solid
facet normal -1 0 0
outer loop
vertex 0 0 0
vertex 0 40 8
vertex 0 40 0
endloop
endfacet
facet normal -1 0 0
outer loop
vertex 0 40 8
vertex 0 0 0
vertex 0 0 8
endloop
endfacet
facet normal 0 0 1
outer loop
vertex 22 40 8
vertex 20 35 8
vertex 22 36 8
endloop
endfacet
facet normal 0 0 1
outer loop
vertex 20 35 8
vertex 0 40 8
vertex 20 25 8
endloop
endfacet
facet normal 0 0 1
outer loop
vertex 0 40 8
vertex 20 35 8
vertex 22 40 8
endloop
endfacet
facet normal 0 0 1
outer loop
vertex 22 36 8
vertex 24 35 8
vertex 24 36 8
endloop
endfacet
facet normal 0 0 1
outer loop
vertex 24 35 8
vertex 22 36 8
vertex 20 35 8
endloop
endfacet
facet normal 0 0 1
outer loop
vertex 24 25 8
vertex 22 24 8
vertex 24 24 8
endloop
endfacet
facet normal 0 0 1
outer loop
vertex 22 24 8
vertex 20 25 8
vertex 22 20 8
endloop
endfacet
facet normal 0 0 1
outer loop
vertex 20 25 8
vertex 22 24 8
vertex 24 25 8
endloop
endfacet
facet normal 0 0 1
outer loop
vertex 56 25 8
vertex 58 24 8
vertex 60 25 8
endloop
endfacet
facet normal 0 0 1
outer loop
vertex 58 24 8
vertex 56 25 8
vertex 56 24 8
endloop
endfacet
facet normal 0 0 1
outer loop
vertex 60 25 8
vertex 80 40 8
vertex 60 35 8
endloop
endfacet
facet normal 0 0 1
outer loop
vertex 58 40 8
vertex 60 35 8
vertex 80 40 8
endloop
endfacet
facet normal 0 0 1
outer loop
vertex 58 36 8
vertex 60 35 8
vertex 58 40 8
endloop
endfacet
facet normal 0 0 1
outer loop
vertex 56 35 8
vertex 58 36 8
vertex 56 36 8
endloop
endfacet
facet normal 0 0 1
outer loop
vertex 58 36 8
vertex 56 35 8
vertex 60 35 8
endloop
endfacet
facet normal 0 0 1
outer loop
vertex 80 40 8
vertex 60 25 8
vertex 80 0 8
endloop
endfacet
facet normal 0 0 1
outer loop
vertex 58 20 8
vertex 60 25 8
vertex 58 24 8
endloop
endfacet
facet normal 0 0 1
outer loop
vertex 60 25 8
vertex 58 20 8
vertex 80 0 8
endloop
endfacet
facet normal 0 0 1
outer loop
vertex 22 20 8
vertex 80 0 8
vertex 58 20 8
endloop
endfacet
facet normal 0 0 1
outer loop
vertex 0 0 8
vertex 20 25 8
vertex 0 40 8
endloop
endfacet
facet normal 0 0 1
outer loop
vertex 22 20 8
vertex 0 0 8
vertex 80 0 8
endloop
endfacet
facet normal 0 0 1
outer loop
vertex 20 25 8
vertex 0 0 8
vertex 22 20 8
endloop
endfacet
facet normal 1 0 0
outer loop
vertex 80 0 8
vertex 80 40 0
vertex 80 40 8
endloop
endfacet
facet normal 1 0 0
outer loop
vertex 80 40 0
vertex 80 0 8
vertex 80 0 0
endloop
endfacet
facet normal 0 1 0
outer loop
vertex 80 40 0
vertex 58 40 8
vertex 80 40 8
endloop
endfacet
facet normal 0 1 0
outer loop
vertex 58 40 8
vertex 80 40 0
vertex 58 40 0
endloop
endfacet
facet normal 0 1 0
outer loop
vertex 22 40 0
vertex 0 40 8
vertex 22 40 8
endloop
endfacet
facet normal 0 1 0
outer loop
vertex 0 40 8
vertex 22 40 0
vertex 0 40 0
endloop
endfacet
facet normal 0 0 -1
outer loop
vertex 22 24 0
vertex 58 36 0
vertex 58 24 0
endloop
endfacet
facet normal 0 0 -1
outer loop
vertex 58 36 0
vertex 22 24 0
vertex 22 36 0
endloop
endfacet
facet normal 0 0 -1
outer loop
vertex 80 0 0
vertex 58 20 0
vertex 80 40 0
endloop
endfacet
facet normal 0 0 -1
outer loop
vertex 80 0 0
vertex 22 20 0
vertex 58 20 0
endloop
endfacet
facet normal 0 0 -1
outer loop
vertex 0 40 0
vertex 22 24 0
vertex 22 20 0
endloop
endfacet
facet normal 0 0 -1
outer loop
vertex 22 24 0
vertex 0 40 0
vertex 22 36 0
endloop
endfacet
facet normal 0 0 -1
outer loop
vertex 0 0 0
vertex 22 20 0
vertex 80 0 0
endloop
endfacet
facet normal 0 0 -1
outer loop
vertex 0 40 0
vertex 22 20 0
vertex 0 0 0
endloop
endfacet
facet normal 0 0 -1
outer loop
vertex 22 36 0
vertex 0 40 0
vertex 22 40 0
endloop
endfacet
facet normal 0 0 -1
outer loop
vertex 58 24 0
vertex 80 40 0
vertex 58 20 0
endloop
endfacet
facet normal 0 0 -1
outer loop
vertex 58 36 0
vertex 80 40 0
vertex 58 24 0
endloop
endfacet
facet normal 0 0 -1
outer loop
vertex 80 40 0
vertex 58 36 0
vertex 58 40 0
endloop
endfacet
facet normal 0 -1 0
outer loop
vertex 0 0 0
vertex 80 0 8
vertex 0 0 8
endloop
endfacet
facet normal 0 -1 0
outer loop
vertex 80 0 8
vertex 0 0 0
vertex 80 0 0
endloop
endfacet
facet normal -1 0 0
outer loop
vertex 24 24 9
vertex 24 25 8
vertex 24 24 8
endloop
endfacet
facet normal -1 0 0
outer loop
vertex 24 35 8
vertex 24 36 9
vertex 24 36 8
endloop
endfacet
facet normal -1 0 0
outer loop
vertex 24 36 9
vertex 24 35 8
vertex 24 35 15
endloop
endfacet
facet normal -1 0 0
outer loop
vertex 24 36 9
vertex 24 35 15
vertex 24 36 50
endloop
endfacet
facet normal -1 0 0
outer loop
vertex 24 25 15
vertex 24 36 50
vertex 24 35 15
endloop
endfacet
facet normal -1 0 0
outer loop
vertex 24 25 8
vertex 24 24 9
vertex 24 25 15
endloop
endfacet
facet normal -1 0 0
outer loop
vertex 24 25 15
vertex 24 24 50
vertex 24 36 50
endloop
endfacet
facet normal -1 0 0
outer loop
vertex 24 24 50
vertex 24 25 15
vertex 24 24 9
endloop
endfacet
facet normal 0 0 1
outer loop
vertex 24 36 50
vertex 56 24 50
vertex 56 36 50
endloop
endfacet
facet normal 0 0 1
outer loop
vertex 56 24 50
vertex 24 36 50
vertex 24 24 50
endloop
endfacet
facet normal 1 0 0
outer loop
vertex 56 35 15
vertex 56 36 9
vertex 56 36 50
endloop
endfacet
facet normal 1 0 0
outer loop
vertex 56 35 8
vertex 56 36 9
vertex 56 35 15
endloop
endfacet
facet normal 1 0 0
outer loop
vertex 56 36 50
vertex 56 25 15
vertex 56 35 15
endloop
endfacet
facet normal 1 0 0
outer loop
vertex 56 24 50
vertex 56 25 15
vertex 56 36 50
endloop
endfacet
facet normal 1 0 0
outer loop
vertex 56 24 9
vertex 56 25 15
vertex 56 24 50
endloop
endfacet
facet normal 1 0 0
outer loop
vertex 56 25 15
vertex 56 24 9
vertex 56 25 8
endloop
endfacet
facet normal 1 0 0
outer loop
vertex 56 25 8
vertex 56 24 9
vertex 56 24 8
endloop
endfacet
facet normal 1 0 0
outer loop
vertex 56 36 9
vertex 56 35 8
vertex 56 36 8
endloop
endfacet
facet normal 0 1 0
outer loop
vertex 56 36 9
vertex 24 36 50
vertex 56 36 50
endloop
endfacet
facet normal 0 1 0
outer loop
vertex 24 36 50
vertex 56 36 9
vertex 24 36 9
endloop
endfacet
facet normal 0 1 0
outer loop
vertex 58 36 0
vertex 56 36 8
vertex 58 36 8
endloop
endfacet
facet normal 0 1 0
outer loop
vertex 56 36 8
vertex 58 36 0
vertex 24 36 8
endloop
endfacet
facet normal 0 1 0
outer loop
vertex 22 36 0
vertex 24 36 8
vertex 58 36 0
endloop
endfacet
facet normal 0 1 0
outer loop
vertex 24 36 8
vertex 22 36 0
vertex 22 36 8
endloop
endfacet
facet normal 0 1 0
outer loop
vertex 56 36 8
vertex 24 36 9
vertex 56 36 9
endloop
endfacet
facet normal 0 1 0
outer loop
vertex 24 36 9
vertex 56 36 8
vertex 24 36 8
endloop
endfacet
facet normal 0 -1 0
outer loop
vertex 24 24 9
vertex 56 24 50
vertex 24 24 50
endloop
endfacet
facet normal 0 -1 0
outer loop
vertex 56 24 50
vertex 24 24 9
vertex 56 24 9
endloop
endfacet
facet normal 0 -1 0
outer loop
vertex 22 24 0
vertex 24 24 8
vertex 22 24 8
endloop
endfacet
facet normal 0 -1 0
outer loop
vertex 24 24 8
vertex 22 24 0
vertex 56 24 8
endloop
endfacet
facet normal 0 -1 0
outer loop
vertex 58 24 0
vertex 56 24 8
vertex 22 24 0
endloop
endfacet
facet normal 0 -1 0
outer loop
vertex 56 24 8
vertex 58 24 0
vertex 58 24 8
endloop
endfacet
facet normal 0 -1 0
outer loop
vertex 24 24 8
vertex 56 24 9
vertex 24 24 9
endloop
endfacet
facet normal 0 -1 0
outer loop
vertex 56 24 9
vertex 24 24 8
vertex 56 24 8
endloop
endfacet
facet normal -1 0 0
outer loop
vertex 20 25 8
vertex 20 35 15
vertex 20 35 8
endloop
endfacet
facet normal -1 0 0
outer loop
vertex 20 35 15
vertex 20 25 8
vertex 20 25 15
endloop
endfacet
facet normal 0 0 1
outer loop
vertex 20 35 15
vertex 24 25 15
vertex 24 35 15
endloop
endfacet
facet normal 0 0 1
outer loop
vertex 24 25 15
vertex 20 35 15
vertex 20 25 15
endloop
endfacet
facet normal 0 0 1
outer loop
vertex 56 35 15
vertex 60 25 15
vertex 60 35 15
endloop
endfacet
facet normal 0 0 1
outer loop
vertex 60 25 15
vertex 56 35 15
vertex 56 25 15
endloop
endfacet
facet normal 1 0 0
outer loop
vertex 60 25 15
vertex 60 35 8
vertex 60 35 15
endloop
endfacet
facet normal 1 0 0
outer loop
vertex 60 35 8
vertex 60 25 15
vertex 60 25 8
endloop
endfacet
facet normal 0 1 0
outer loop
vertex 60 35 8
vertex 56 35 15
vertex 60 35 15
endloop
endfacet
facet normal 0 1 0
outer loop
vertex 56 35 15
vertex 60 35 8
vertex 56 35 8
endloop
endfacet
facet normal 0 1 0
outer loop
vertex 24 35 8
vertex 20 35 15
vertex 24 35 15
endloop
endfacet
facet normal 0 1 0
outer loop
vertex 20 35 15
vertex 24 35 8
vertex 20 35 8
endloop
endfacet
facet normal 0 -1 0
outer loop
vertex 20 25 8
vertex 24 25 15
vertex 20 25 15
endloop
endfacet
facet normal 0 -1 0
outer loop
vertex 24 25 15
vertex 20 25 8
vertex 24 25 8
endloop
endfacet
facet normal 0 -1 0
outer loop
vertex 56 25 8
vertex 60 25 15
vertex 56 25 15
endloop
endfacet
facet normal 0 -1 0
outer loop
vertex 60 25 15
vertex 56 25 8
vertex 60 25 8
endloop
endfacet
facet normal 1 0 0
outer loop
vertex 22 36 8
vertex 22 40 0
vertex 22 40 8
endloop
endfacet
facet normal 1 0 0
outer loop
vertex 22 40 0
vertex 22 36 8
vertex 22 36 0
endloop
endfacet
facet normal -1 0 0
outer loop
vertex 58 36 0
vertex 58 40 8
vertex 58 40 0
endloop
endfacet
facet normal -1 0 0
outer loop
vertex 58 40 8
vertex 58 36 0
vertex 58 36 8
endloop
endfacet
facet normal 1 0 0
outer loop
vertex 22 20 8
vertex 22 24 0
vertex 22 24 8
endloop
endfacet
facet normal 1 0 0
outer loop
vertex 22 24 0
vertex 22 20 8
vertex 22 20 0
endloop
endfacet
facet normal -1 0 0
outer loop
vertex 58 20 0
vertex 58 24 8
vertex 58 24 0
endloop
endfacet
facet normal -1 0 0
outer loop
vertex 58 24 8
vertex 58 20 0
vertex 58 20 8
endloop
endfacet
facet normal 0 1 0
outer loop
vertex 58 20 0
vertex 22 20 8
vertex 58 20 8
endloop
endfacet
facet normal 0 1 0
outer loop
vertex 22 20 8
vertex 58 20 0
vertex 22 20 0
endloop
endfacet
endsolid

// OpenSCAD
base_width = 80;
base_depth = 40;
base_height = 8;

slot_width = 36;
slot_depth = 4;

post_width = 32;
post_depth = 12;
post_height = 50;

flange_depth = 10;
flange_width = 40;
flange_height = 15;

difference(){
  union(){
    // base
    cube([base_width, base_depth, base_height]);
    // post
    translate([(base_width-post_width)/2, base_depth-post_depth-slot_depth, 0])
      cube([post_width, post_depth, post_height]);
    // flange
    translate([(base_width-flange_width)/2, base_depth-flange_depth-slot_depth-(post_depth-flange_depth)/2,0])
      cube([flange_width, flange_depth, flange_height]);
  }
  translate([(base_width-slot_width)/2, base_depth-slot_depth, -1])
    cube([slot_width, slot_depth+1, base_height+2]);
  translate([(base_width-slot_width)/2, base_depth-2*slot_depth-post_depth, -1])
    cube([slot_width, slot_depth, base_height+2]);
}
